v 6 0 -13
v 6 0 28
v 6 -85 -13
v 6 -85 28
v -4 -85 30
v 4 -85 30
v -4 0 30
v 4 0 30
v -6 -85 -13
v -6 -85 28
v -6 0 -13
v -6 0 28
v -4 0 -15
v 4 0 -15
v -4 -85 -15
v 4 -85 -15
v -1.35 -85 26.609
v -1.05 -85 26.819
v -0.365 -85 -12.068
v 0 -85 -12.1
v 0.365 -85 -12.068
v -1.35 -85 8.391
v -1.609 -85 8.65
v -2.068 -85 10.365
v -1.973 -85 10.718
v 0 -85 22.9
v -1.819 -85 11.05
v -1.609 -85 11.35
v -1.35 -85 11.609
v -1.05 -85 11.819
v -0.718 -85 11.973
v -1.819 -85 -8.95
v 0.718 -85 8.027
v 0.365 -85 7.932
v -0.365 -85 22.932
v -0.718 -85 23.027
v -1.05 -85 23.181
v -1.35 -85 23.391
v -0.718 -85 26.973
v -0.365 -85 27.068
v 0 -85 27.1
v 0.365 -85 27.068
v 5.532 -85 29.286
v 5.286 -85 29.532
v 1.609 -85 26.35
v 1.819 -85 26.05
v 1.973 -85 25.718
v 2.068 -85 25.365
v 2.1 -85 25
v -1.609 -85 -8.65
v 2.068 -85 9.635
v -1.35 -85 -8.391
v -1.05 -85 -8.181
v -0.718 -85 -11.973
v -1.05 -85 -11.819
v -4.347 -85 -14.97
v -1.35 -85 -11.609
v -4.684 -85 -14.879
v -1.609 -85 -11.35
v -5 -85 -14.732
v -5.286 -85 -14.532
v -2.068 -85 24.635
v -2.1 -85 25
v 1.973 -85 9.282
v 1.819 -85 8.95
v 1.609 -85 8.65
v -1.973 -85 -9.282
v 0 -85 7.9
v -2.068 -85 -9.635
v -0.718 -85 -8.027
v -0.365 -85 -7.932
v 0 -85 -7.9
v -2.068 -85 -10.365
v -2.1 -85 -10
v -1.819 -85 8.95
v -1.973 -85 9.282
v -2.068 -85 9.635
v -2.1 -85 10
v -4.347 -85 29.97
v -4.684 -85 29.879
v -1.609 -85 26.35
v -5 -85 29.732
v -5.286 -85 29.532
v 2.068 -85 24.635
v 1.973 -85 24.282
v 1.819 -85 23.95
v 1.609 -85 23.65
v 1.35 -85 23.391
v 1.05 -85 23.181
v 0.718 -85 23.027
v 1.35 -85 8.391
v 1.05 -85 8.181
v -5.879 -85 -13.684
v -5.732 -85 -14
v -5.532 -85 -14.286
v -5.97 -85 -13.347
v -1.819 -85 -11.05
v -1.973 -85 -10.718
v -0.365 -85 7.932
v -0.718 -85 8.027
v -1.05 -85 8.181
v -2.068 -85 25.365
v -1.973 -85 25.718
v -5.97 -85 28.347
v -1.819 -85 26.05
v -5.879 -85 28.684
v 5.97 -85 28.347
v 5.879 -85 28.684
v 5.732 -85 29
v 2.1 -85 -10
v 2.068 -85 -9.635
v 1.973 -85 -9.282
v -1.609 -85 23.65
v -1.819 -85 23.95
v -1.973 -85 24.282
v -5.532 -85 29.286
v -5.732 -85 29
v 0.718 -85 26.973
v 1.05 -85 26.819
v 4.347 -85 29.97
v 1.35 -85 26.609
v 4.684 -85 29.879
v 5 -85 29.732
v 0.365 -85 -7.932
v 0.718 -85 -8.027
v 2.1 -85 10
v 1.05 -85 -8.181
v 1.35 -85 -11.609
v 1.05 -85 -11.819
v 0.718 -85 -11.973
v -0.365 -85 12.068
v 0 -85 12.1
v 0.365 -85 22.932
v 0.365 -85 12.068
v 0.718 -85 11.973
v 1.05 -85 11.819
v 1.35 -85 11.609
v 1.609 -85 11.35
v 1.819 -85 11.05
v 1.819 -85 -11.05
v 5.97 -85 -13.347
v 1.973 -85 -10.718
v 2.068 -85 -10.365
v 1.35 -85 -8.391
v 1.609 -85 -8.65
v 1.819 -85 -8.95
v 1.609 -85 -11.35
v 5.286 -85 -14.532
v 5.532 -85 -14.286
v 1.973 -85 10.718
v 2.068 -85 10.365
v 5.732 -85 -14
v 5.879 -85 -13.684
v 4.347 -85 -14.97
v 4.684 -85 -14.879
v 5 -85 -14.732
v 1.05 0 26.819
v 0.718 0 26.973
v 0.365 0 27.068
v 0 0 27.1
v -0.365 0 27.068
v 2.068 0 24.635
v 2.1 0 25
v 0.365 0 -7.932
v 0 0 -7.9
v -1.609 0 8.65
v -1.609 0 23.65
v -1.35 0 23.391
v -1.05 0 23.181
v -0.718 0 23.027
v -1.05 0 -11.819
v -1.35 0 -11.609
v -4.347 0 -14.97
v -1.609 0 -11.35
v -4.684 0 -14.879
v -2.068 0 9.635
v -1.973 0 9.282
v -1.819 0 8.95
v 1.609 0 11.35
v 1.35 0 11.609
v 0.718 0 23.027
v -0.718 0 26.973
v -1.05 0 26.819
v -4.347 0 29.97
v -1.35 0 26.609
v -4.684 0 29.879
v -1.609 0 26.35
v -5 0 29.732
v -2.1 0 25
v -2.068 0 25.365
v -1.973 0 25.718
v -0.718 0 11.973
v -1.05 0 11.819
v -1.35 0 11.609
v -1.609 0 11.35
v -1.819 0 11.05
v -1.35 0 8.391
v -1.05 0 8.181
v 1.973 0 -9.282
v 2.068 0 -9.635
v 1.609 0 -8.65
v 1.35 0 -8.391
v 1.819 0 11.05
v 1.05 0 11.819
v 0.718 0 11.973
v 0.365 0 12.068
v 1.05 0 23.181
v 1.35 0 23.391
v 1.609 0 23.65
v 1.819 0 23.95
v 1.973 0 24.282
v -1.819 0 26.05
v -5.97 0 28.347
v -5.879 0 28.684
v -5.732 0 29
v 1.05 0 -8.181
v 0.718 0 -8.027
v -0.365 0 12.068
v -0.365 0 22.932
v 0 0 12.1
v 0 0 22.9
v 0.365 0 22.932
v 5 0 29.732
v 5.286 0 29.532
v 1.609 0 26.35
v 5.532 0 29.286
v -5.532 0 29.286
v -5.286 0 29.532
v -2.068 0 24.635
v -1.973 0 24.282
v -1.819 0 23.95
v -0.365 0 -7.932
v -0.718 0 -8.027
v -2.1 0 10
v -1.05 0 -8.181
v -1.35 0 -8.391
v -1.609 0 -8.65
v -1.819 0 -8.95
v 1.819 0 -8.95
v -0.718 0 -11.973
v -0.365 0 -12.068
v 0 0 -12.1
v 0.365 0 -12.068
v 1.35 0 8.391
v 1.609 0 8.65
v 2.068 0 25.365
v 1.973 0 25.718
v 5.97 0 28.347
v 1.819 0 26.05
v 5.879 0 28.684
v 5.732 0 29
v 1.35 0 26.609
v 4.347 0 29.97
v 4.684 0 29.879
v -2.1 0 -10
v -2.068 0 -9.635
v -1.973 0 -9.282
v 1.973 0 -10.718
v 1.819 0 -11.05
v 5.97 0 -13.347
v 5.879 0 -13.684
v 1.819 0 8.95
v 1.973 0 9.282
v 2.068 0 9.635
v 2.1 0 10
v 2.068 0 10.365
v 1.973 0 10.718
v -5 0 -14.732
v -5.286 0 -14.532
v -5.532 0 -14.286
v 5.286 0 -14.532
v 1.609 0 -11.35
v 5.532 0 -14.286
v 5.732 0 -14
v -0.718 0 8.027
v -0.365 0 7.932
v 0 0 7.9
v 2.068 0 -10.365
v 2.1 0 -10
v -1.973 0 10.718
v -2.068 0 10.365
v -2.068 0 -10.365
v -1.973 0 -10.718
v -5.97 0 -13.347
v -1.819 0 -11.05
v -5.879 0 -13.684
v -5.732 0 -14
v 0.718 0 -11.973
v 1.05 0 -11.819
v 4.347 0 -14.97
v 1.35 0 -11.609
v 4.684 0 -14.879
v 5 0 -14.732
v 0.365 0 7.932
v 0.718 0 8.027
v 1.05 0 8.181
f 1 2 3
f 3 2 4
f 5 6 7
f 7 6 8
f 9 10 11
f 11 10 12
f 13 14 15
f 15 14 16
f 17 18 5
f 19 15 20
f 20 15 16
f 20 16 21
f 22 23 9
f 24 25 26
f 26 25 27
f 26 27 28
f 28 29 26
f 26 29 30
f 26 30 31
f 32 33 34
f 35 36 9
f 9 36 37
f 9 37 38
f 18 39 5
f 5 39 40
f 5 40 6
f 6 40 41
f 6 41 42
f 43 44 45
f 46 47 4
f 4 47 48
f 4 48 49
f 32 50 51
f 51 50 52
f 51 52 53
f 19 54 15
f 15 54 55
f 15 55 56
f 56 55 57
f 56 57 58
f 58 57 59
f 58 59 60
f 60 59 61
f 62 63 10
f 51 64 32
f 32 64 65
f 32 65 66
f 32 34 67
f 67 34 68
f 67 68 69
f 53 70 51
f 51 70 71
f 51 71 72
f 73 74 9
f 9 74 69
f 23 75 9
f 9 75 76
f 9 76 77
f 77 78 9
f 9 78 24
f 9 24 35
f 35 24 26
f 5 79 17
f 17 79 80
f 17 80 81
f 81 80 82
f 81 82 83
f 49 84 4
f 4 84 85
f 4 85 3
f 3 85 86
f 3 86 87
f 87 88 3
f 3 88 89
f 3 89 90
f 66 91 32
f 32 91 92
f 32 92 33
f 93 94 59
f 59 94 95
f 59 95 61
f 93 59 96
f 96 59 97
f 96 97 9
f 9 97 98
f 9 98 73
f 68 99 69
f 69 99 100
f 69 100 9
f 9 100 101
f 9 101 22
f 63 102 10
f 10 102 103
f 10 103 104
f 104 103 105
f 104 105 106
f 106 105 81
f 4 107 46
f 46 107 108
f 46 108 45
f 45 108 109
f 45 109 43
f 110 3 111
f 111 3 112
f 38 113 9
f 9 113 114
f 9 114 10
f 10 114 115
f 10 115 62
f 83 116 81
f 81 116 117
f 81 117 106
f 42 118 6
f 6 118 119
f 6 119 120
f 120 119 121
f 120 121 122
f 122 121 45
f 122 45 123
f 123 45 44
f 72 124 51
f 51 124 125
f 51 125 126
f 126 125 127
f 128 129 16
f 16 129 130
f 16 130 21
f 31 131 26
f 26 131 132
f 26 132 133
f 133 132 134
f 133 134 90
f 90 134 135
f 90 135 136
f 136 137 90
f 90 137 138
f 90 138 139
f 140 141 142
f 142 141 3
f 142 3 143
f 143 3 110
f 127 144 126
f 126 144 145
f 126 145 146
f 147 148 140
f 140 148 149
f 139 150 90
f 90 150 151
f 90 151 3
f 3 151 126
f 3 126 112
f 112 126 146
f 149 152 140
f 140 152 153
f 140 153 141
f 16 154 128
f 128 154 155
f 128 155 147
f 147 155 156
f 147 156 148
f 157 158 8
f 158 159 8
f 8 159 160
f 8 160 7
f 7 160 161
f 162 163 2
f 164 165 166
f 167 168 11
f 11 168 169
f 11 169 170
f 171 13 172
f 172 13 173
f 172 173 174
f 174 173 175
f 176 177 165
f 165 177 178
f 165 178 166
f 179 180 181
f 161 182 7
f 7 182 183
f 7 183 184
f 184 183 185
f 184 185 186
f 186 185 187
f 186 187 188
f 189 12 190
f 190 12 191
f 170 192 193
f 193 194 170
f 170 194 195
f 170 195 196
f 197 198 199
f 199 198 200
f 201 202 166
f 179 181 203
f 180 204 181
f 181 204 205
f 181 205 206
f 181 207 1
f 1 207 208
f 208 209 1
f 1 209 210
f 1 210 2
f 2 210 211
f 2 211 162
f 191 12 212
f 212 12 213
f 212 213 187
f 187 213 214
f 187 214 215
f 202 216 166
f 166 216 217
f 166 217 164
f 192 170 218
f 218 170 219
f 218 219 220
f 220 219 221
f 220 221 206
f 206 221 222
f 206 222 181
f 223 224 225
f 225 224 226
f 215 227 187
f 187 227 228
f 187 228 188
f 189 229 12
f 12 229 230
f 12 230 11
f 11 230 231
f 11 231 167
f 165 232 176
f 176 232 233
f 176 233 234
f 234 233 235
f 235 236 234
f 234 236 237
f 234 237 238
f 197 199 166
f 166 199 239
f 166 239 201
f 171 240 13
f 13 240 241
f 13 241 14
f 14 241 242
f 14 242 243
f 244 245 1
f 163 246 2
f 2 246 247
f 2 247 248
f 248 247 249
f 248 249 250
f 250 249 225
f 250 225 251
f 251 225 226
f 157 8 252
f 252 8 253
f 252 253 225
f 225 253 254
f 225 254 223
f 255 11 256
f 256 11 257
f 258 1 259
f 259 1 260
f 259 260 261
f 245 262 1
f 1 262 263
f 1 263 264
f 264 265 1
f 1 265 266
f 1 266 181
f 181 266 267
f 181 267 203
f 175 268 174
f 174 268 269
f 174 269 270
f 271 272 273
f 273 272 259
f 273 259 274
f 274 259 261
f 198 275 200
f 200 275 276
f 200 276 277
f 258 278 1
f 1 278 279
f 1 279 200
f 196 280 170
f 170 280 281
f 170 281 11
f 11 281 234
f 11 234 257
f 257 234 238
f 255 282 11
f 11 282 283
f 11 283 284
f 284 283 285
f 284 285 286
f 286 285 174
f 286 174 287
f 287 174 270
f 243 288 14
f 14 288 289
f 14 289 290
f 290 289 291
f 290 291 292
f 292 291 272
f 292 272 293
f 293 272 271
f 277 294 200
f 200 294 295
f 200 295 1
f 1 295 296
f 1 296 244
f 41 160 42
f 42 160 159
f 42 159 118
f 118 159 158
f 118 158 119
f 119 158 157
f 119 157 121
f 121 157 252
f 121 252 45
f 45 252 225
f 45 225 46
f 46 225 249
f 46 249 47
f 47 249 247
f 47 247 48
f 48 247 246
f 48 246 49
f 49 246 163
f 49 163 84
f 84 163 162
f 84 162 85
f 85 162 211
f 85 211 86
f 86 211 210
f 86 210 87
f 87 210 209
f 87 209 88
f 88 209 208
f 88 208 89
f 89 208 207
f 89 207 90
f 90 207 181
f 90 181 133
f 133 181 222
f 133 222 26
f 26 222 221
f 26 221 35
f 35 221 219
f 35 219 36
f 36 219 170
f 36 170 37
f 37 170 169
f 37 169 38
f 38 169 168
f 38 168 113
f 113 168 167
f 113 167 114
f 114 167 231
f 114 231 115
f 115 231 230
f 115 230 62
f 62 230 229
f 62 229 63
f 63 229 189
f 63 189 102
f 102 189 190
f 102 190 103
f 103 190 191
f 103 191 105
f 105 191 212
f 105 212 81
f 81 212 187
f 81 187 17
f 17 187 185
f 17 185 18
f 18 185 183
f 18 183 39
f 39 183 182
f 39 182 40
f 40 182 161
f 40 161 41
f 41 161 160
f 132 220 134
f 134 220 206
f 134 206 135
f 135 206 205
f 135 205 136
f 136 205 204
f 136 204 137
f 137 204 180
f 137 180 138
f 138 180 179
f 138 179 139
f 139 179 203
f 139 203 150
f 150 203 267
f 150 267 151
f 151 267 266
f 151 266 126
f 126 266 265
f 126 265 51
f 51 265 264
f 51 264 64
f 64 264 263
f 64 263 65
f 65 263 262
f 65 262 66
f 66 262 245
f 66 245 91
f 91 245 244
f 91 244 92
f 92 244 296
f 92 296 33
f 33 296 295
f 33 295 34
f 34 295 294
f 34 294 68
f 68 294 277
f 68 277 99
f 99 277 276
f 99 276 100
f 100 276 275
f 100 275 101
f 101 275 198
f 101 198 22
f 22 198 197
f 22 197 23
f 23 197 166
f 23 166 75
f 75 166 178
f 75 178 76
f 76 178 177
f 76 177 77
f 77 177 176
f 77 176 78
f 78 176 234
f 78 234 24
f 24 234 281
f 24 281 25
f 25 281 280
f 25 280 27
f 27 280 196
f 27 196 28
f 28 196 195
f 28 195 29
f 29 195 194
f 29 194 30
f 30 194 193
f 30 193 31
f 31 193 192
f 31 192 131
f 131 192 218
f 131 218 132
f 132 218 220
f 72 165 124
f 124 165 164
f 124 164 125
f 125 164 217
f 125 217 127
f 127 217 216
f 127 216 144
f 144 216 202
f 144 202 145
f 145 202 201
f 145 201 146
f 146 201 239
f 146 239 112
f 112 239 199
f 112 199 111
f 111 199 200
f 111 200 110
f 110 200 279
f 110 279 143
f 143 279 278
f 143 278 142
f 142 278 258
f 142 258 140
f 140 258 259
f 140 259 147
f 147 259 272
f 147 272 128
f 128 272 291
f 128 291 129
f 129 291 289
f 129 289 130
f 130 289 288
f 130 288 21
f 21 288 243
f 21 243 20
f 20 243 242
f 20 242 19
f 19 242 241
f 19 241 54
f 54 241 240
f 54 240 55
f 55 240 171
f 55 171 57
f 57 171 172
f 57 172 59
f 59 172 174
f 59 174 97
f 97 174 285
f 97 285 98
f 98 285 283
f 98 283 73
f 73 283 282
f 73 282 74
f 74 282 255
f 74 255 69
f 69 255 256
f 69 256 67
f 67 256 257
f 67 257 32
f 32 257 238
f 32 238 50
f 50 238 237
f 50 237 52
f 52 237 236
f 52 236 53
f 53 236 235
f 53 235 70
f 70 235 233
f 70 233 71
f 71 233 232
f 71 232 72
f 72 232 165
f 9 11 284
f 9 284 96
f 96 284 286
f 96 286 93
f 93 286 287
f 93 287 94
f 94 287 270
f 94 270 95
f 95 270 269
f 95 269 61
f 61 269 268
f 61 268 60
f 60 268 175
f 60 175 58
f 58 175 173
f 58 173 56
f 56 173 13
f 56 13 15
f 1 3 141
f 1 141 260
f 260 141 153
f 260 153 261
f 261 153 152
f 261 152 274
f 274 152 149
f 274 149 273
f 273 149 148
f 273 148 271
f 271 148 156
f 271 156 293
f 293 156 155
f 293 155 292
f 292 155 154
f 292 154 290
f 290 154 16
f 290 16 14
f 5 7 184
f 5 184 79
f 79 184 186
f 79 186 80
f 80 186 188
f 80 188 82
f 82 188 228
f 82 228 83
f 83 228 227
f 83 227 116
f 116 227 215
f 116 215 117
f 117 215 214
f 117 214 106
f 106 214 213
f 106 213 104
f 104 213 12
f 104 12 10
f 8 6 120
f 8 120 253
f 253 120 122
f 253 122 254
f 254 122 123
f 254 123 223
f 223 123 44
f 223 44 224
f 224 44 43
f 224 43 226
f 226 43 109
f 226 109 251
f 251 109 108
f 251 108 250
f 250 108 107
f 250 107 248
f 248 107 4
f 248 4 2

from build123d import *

# Parameters (mm, degrees)
SKETCH1_W                   = 12
SKETCH1_H                   = 45
BOSS_EXTRUDE1_DEPTH         = 85
TAP_DRILL_FOR_M5X0_8_TAP1_D = 4.2
FILLET1_R                   = 2


with BuildPart() as part:
    # Sketch1 → Boss-Extrude1 (new body)
    with BuildSketch(Plane(origin=(0, 0, 0), x_dir=(1, 0, 0), z_dir=(0, 1, 0))):
        with Locations((0, -7.5)):
            Rectangle(SKETCH1_W, SKETCH1_H)
    extrude(amount=-BOSS_EXTRUDE1_DEPTH)

    # Tap Drill for M5x0.8 Tap1 (through all)
    with Locations(Plane(origin=(0, 0, -10), x_dir=(0, 0, 1), z_dir=(0, 1, 0))):
        with Locations((0, 0), (20, 0), (35, 0)):
            Hole(TAP_DRILL_FOR_M5X0_8_TAP1_D / 2)

    # Fillet1
    fillet1_edges = [part.edges().sort_by_distance(p)[0] for p in [
        (6, -42.5, 30),
        (-6, -42.5, 30),
        (-6, -42.5, -15),
        (6, -42.5, -15),
    ]]
    fillet(fillet1_edges, radius=FILLET1_R)


solid = part.part
